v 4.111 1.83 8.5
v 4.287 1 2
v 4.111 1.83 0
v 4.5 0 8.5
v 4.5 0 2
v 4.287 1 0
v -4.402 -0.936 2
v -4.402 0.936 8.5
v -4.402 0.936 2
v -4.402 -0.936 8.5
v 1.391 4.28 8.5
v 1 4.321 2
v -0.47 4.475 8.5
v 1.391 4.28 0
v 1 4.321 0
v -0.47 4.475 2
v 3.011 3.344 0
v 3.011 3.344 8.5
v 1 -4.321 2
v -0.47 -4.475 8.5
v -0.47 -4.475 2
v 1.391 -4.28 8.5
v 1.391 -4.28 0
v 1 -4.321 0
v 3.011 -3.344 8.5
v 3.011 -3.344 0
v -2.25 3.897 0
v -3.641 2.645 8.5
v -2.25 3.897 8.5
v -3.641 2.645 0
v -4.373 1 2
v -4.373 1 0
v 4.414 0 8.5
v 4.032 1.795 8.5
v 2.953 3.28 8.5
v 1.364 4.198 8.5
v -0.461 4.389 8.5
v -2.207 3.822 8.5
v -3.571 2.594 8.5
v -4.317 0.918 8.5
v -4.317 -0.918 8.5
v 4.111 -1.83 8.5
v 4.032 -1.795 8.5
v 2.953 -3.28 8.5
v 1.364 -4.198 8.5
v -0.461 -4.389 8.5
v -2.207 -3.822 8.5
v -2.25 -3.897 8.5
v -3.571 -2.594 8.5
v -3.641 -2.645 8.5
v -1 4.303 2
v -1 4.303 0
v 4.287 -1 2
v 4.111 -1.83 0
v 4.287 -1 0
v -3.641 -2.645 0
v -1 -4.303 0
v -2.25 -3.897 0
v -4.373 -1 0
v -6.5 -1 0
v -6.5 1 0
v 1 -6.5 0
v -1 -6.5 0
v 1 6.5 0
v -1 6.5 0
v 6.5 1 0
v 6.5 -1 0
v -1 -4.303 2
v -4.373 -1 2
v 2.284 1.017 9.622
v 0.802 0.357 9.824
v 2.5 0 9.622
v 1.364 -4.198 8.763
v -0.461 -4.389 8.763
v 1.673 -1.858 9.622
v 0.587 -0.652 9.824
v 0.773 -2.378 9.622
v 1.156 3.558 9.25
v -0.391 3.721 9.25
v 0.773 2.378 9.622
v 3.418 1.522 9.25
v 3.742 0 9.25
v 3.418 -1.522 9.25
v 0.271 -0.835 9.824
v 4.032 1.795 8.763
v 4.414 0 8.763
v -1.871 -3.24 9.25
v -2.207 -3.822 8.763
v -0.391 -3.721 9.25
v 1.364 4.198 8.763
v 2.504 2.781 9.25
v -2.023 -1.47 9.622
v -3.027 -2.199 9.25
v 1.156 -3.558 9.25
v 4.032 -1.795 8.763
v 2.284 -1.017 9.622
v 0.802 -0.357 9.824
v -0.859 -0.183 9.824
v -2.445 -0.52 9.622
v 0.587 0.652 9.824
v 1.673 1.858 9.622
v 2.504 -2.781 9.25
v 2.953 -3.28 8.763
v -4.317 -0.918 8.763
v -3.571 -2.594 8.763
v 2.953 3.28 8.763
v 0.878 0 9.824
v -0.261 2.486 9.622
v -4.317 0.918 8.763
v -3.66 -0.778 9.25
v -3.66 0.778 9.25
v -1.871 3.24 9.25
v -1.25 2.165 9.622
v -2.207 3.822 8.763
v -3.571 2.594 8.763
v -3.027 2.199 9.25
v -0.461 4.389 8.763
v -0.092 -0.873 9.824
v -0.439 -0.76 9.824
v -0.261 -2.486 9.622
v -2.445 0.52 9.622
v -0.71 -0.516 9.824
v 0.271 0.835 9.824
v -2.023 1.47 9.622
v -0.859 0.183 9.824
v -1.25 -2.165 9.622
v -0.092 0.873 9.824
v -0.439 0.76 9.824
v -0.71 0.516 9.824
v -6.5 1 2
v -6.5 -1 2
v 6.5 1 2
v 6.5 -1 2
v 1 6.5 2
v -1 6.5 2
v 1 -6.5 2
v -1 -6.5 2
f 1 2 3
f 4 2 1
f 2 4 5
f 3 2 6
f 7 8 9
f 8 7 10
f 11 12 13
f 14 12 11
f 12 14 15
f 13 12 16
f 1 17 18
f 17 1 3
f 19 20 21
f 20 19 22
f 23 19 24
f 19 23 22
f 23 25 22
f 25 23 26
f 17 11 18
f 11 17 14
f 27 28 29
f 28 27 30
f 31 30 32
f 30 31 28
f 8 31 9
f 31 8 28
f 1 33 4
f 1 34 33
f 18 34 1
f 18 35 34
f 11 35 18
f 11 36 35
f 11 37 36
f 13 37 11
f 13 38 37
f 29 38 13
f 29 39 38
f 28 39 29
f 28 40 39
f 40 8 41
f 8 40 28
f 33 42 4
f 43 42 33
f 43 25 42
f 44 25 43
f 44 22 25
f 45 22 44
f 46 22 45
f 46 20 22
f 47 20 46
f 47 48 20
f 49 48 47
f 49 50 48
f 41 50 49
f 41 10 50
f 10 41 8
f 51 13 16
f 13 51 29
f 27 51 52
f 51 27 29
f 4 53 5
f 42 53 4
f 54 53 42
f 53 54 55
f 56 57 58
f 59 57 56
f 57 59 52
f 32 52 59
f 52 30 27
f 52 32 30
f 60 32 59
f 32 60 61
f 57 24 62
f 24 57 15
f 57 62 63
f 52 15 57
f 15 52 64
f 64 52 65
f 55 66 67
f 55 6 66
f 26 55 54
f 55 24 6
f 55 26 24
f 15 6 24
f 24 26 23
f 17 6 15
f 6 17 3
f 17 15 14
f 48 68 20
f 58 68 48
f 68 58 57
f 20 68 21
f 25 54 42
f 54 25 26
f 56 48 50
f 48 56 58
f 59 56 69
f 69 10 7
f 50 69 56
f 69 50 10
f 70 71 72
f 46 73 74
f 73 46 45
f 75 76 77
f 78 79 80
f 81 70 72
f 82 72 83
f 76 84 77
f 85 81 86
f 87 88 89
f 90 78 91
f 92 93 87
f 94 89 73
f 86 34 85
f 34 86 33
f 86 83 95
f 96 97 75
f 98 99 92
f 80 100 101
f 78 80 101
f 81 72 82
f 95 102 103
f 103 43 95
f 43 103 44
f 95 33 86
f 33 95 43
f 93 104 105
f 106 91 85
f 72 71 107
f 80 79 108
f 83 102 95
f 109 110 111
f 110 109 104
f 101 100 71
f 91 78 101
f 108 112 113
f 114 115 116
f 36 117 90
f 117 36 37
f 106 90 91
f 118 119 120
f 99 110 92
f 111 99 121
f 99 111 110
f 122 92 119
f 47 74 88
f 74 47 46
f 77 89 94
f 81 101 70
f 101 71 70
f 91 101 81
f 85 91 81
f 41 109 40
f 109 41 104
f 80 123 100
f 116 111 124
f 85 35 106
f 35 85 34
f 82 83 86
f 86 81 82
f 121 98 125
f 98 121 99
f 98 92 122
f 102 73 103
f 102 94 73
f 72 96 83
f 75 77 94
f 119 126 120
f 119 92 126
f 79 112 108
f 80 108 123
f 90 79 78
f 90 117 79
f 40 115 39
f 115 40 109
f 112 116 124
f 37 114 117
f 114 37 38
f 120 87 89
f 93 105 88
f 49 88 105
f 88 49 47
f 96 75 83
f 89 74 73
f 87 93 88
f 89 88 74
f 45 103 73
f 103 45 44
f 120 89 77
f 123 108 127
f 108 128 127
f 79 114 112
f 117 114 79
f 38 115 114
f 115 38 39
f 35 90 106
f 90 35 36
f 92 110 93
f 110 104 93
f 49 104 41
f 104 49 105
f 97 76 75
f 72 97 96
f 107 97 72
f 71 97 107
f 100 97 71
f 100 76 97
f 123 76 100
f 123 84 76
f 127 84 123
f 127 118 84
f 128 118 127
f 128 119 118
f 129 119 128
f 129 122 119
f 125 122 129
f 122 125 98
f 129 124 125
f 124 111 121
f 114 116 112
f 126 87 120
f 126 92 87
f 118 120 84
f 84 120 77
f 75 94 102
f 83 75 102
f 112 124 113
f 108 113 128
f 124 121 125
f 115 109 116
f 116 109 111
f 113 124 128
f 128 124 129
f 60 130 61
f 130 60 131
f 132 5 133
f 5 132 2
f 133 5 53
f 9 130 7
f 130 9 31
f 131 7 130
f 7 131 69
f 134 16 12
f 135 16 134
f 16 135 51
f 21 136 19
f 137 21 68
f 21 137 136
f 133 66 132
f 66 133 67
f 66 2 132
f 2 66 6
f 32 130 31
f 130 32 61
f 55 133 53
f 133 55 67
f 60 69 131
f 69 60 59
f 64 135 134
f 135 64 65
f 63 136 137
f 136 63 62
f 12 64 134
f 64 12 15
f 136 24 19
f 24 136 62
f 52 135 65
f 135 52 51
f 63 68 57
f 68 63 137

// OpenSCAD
//difference() {
    cylinder(h=8.5, r=4.5);
    translate([0, 0, 8.5]) scale([1, 1, 0.3]) {
        sphere(r=4.5);
    }
//}
translate([-6.5, -1, 0]) cube([13, 2, 2]);
rotate([0, 0, 90])
translate([-6.5, -1, 0]) cube([13, 2, 2]);
